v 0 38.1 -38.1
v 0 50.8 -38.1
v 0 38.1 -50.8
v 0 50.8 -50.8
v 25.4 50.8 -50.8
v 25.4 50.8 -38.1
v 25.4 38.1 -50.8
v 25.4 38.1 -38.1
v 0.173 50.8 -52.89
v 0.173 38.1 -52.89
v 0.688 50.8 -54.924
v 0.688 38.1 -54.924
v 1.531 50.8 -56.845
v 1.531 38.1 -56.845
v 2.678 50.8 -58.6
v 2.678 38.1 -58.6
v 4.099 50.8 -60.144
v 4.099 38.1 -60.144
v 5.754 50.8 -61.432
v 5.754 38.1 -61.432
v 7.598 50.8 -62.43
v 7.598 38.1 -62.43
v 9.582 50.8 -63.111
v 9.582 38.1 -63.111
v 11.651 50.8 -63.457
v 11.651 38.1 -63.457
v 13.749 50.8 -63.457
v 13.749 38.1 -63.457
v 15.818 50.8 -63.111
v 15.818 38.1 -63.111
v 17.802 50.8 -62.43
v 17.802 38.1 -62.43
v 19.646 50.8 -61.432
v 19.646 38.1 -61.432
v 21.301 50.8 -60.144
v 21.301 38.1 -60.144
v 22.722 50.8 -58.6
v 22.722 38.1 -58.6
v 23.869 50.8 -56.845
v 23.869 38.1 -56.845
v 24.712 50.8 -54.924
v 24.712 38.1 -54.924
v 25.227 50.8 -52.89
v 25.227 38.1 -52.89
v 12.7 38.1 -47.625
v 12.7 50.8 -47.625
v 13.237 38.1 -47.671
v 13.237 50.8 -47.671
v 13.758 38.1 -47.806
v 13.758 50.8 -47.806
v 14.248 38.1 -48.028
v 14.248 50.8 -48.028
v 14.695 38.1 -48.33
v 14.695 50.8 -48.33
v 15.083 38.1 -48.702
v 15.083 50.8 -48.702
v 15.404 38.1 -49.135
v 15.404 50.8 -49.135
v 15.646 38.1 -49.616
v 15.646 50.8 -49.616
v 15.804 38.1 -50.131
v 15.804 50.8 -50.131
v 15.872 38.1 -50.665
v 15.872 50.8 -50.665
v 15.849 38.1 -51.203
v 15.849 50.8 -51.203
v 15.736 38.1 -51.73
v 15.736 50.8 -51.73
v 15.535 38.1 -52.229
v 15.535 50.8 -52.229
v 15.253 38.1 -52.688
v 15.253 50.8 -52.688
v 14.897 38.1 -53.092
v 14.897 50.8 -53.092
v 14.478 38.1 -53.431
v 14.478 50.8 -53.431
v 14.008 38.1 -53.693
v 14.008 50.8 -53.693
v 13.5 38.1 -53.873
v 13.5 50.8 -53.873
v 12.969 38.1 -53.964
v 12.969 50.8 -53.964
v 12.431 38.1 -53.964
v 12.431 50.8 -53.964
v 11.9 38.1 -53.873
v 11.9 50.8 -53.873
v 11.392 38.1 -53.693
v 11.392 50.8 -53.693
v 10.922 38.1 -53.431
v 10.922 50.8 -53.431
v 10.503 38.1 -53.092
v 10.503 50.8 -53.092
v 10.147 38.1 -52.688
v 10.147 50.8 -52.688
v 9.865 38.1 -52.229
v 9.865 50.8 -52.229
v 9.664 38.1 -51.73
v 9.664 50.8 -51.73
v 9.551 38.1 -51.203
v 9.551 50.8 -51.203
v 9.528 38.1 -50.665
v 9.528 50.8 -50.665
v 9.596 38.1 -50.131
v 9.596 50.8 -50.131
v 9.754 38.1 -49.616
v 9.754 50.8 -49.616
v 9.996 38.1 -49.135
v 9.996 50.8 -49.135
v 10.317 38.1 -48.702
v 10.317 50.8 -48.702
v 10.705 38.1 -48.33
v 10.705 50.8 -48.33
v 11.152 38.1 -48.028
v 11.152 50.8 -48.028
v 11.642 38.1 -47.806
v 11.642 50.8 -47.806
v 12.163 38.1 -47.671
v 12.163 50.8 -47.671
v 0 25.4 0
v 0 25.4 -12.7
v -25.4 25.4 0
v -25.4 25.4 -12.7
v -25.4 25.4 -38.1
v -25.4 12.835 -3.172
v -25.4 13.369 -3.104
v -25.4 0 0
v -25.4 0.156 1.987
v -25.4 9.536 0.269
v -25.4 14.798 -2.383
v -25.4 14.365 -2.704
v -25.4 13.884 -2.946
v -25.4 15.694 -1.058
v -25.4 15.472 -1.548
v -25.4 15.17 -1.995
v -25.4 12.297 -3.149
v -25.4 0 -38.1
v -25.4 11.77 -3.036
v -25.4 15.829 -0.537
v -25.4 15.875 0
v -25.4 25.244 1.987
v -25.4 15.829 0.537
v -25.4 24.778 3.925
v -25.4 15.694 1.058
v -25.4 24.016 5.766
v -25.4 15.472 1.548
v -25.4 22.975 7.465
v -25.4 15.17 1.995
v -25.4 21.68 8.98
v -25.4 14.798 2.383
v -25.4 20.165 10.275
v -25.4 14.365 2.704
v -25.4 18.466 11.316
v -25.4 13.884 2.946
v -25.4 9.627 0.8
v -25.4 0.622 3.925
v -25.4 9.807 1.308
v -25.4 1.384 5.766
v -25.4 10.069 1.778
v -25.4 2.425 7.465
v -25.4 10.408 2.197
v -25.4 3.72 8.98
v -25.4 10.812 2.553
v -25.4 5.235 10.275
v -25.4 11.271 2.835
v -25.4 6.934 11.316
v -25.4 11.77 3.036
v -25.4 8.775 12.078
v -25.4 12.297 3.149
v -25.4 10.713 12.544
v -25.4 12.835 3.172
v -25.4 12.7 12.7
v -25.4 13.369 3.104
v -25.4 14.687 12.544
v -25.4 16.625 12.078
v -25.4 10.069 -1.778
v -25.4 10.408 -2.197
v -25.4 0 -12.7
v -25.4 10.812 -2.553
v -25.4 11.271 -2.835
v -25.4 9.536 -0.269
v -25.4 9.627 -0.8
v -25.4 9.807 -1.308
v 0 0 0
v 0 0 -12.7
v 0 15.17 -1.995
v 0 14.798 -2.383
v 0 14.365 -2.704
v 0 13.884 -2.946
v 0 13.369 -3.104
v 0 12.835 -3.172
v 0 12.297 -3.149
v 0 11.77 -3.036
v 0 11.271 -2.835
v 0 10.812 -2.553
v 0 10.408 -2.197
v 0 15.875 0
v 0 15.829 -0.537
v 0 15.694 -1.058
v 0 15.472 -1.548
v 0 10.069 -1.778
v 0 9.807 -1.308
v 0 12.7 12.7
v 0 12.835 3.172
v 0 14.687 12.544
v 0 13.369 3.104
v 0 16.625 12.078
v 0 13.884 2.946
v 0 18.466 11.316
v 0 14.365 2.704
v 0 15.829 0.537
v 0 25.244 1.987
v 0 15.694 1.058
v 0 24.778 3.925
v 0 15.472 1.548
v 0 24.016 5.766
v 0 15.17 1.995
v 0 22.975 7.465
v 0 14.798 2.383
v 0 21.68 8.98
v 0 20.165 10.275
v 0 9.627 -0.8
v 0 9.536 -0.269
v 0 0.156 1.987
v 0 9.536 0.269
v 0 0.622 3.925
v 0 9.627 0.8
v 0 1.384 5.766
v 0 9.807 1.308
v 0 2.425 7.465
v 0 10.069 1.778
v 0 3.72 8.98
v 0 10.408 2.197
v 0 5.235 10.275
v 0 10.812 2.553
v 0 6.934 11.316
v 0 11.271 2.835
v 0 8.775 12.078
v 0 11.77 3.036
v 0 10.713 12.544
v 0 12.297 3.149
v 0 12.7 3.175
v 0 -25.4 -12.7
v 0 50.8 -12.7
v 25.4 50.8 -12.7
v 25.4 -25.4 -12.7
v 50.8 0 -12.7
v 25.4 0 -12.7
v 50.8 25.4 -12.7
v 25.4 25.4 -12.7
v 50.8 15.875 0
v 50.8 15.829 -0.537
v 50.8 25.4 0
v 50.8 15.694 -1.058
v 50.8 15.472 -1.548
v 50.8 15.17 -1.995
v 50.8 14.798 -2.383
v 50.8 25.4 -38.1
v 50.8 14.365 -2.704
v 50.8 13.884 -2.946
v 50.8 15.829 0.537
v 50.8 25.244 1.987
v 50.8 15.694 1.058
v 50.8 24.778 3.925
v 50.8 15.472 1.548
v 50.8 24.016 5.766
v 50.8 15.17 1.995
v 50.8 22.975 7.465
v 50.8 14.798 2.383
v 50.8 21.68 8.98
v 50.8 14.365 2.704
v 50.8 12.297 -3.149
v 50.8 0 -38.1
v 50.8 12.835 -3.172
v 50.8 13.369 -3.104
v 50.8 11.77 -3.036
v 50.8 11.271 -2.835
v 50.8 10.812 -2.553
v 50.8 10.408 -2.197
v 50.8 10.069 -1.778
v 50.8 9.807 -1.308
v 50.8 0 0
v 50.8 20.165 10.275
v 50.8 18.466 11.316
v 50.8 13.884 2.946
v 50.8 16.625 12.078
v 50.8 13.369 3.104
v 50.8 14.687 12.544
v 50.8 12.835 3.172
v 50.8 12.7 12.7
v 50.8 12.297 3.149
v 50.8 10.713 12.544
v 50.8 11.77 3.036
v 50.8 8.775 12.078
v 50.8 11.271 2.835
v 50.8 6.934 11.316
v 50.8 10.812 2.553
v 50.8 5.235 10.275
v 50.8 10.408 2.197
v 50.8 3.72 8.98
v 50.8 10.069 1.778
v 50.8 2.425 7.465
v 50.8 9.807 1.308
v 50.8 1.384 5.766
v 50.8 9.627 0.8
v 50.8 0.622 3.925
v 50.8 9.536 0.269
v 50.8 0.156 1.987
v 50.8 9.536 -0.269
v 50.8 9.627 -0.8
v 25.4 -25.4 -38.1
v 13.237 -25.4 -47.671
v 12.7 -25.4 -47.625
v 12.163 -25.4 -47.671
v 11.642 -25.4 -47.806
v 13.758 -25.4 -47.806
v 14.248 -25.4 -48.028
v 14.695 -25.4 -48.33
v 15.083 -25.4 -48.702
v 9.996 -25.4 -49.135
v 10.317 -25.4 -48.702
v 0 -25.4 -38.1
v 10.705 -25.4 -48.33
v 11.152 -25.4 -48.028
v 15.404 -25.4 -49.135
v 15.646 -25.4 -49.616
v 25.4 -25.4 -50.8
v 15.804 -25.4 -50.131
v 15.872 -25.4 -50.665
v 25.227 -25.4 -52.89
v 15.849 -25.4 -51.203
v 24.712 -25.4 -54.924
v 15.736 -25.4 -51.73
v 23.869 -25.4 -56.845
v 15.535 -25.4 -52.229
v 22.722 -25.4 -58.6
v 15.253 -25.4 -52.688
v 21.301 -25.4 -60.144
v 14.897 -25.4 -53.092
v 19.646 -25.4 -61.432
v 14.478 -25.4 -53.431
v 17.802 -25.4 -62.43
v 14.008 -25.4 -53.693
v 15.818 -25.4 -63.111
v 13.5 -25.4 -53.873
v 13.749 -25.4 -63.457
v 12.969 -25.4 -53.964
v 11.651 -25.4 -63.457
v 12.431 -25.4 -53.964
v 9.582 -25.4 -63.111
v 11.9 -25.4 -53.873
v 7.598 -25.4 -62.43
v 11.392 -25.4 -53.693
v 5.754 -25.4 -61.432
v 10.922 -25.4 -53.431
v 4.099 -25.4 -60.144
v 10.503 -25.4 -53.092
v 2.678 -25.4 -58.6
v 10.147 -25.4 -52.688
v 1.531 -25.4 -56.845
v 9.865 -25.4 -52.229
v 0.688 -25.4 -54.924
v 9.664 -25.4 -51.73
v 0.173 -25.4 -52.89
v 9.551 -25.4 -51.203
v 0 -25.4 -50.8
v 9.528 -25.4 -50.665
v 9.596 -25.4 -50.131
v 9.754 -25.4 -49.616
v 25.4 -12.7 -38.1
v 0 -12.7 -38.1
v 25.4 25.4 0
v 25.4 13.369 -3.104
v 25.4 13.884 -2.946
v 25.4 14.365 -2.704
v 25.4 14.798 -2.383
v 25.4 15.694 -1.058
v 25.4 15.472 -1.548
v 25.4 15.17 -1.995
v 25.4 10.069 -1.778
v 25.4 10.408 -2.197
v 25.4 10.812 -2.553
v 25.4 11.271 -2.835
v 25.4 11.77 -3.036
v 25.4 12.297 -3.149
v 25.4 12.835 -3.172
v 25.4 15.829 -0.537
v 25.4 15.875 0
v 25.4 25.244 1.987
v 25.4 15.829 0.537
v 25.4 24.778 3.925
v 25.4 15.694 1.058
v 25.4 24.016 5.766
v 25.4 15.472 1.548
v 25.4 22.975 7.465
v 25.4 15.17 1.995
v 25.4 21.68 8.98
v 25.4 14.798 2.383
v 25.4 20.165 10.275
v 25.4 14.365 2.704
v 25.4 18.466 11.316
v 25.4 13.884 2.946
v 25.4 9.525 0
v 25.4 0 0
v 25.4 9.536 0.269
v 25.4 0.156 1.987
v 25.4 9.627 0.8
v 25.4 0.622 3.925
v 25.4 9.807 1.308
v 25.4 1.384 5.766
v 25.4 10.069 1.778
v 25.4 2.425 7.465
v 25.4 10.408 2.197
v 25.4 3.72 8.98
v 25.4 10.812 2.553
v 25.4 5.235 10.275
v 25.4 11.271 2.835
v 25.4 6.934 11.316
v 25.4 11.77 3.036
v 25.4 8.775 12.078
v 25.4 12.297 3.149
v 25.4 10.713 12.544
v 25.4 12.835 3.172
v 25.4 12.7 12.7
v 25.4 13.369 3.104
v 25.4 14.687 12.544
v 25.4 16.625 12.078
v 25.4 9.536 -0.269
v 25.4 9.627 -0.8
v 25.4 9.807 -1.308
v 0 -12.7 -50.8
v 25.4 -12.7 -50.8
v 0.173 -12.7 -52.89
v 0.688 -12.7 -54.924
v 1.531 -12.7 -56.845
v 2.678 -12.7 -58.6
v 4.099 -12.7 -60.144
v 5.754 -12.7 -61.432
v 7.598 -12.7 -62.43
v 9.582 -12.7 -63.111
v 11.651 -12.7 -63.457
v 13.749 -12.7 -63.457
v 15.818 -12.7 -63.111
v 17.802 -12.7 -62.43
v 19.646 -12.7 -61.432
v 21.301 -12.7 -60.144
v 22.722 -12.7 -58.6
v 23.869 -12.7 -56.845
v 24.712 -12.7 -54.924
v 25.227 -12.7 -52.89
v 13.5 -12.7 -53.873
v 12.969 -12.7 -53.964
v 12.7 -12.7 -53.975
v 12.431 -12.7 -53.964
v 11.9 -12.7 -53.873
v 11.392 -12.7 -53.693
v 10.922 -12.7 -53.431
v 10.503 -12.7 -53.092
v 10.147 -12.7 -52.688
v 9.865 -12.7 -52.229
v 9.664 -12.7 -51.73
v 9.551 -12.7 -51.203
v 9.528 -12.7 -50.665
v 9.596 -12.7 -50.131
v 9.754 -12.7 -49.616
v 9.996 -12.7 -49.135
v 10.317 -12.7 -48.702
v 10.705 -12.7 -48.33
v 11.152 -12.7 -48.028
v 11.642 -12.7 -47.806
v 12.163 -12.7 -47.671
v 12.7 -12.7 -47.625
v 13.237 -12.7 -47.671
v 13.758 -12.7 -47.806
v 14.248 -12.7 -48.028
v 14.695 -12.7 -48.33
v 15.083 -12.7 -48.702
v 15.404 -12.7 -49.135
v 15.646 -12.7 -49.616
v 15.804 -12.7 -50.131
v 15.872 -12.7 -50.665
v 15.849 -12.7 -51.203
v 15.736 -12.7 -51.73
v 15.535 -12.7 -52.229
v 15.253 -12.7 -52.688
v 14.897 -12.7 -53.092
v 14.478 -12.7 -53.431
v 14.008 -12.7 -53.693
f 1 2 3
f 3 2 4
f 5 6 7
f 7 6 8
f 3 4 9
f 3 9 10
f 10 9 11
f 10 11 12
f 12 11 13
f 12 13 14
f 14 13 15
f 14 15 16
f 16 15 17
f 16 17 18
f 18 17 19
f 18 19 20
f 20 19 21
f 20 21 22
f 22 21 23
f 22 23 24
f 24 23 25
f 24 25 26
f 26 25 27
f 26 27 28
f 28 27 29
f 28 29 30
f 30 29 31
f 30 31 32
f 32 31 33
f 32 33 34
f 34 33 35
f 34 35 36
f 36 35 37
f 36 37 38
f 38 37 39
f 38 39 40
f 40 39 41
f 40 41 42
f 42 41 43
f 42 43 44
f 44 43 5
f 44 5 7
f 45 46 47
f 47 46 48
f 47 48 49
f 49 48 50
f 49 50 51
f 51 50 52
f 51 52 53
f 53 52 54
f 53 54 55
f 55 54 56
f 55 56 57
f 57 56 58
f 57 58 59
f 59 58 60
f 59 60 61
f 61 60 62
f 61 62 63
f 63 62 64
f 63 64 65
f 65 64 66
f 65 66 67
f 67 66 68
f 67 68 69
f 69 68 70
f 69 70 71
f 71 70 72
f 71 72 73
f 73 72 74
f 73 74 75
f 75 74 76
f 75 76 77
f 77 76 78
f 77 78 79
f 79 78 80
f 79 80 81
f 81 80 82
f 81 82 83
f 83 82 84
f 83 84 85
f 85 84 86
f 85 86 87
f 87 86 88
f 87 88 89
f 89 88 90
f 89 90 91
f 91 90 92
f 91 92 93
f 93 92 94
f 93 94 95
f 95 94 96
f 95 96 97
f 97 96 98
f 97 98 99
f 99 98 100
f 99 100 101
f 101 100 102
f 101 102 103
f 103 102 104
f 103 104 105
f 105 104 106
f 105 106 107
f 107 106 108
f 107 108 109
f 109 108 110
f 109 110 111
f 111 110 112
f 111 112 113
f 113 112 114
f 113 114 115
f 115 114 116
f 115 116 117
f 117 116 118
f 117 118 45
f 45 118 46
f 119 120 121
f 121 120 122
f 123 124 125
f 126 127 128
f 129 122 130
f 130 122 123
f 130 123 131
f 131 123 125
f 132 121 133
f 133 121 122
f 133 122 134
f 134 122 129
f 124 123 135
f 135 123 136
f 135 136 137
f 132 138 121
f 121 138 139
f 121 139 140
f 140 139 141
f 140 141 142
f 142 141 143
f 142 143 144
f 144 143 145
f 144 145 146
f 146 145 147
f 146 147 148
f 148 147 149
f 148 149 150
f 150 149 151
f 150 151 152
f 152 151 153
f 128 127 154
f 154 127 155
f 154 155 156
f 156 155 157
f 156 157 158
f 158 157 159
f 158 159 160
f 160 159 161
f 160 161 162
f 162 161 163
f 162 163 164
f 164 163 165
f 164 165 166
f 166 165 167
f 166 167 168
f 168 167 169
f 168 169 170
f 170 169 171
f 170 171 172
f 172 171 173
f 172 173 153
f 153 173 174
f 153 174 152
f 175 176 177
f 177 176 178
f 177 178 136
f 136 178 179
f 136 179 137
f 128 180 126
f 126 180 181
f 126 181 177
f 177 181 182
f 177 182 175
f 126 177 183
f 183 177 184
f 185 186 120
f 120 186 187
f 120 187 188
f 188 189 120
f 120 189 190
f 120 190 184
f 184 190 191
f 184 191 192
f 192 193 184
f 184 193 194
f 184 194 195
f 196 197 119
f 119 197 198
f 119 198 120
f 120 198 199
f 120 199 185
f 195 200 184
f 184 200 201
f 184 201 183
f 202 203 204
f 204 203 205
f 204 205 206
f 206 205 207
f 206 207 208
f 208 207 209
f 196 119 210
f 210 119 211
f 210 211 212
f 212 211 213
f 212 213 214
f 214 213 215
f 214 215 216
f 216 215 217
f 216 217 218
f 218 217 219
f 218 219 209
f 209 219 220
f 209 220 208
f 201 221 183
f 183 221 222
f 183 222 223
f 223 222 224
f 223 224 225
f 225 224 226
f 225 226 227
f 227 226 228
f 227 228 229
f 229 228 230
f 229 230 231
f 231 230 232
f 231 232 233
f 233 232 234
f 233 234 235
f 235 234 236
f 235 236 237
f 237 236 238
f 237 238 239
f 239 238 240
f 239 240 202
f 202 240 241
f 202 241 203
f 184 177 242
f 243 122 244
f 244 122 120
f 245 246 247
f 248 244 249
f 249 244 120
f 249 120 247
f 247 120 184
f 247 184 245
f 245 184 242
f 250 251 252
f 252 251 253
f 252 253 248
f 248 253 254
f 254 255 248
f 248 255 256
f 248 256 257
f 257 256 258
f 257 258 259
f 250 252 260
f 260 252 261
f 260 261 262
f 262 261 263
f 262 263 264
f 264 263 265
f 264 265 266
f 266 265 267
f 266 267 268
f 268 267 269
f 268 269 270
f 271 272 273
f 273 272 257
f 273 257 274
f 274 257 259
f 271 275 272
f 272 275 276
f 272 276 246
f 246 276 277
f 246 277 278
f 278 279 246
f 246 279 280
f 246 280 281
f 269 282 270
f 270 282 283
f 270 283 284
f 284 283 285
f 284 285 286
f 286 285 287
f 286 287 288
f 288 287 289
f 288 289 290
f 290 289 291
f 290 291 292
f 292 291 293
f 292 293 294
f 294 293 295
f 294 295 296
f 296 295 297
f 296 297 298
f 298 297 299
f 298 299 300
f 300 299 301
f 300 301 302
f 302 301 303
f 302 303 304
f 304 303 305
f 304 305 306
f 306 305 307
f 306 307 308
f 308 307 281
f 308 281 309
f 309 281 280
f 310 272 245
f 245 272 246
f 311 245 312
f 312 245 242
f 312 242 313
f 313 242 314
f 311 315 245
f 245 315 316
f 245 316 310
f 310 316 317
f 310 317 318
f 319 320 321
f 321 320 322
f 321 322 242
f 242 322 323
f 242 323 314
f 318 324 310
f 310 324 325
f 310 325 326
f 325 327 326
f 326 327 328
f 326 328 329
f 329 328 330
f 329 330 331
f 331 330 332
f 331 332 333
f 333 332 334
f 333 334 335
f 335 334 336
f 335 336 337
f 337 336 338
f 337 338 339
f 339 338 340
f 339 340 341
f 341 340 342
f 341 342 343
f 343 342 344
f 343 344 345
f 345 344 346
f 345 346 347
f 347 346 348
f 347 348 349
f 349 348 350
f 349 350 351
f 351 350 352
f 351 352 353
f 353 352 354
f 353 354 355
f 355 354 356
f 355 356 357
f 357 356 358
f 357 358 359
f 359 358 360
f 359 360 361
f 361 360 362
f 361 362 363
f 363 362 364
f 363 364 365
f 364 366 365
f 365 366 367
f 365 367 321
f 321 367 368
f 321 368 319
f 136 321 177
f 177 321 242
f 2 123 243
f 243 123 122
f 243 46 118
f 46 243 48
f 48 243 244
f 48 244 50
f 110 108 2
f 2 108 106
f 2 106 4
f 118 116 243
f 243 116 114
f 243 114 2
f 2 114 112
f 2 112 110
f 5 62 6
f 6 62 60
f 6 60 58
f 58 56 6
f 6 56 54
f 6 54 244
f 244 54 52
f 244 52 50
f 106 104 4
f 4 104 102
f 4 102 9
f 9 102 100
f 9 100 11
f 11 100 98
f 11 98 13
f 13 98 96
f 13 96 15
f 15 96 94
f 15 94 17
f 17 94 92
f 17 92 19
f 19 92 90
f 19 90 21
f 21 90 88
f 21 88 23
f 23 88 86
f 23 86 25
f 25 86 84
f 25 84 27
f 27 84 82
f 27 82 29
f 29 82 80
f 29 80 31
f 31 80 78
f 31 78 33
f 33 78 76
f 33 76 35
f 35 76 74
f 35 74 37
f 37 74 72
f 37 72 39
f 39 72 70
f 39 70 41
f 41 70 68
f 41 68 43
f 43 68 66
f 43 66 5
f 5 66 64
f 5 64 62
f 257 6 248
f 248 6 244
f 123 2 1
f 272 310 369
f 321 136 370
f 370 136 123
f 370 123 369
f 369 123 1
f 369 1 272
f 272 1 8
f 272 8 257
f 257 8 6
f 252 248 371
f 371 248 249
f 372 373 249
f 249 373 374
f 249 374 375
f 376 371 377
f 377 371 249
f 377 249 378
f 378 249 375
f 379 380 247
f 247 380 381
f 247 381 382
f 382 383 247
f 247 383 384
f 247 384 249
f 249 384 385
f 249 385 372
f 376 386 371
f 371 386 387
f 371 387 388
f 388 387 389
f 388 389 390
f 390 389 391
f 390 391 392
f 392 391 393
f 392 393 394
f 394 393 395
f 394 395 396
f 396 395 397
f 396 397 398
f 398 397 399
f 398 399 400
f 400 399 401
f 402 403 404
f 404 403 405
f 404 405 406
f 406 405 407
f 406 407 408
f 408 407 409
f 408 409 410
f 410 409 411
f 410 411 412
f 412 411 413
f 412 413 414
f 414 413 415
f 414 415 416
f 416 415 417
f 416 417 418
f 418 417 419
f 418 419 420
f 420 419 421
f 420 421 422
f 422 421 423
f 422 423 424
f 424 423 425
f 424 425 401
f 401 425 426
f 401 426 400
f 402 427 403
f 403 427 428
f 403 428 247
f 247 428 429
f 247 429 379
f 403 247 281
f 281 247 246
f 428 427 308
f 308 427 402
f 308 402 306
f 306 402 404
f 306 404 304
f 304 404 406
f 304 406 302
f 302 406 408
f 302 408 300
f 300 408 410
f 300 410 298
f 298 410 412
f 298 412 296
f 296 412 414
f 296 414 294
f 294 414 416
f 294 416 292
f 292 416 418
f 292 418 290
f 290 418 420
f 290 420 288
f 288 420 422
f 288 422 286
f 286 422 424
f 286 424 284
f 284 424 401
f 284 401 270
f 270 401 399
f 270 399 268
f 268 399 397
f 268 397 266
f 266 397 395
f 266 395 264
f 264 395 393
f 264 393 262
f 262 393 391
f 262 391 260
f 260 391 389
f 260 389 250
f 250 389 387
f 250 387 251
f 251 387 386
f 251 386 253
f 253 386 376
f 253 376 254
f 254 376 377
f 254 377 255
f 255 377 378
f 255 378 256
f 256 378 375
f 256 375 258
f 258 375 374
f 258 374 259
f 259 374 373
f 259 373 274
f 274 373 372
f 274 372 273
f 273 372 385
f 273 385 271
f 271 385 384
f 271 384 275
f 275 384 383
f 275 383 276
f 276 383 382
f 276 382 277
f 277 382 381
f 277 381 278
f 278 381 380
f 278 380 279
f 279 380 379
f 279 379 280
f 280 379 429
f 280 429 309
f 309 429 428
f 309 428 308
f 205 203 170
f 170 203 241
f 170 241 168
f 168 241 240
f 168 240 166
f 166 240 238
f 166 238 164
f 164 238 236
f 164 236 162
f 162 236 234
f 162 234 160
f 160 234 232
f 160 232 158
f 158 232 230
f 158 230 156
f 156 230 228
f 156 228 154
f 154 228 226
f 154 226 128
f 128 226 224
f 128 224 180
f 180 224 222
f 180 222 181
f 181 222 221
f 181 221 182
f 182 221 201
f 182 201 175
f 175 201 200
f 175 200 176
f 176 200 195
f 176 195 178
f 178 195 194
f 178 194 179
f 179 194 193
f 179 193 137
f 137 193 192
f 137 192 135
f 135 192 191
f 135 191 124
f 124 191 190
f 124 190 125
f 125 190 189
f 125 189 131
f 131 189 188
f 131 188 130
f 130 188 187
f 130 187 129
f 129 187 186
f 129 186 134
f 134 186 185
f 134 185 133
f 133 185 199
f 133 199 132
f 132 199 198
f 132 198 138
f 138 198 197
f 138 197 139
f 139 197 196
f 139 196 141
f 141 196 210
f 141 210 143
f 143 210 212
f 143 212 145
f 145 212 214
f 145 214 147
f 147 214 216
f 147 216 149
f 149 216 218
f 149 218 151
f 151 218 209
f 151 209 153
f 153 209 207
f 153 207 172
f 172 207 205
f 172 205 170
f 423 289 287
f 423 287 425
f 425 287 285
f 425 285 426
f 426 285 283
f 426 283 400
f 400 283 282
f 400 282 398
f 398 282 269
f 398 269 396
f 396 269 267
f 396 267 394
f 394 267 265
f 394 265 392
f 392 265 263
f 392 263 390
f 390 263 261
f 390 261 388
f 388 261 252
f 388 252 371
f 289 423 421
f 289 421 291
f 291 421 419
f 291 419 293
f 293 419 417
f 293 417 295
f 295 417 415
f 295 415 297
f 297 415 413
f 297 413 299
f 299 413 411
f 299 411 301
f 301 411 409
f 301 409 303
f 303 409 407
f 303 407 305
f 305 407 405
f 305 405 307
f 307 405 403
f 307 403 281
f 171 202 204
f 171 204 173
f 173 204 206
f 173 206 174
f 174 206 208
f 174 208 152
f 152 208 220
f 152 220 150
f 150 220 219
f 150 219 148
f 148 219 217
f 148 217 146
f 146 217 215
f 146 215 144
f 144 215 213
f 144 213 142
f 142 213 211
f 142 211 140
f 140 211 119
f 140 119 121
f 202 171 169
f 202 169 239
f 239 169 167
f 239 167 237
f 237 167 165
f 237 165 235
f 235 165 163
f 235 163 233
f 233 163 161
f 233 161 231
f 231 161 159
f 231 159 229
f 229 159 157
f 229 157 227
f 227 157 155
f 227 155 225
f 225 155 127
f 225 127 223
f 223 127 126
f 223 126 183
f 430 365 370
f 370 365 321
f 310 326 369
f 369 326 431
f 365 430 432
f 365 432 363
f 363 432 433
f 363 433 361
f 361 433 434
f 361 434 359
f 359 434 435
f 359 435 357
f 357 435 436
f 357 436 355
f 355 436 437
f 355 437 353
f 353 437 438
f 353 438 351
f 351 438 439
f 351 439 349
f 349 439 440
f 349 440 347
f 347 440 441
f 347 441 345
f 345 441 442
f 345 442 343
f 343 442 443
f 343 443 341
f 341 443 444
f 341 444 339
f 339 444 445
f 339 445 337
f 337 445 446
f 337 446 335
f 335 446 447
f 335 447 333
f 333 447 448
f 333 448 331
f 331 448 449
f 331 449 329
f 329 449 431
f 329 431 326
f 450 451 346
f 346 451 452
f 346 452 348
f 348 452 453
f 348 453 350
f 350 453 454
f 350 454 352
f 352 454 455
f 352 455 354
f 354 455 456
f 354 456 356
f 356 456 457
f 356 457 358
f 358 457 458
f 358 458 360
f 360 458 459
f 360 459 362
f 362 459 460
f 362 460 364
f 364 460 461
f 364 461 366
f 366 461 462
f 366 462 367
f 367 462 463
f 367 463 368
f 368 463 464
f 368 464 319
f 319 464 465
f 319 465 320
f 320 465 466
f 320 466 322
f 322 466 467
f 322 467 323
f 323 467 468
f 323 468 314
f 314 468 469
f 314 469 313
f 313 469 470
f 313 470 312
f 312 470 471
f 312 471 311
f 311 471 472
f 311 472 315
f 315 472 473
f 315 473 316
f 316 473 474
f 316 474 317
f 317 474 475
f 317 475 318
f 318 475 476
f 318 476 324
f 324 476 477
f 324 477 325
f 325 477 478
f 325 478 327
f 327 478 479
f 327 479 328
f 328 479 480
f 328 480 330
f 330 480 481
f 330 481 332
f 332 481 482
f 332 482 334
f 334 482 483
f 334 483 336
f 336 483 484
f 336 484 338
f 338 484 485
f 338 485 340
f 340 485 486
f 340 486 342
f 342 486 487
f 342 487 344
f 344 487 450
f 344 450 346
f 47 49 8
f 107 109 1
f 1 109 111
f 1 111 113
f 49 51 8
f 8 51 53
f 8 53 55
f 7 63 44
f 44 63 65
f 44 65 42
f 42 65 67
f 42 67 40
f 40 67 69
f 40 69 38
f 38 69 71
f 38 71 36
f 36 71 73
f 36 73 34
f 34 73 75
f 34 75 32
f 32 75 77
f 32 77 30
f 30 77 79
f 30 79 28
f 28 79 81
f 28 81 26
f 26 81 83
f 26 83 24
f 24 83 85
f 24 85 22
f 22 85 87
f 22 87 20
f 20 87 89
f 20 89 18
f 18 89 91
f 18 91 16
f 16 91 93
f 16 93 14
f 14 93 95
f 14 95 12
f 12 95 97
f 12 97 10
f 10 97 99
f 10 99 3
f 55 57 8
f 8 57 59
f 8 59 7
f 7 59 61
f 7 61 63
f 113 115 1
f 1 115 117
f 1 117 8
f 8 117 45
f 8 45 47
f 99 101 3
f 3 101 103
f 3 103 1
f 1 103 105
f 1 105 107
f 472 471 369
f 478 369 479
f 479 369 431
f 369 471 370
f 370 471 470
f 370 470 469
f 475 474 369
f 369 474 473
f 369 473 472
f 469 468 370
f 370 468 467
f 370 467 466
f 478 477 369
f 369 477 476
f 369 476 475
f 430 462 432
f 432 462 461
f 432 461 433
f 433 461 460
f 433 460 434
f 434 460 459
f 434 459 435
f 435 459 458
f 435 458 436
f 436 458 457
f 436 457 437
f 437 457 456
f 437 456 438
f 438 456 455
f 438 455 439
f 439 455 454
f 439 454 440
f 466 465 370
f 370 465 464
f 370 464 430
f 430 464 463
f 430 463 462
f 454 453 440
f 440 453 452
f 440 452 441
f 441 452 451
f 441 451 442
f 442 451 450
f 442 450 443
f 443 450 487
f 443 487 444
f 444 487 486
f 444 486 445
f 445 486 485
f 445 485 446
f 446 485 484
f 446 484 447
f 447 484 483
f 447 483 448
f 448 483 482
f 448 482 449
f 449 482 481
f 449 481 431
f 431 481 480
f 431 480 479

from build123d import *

# Parameters (mm, degrees)
SKETCH1_W             = 25.4
SKETCH1_H             = 25.4
BOSS_EXTRUDE1_DEPTH   = 12.7
BOSS_EXTRUDE1_2_DEPTH = 12.7
BOSS_EXTRUDE2_DEPTH   = 25.4
SKETCH3_R             = 3.175
CUT_EXTRUDE1_DEPTH    = 100.190170884
FILLET1_R             = 12.7
BOSS_EXTRUDE3_DEPTH   = 76.2
SKETCH5_W             = 25.4
SKETCH5_H             = 50.8
CUT_EXTRUDE2_DEPTH    = 96.882897328


with BuildPart() as part:
    # Sketch1 → Boss-Extrude1 (new, symmetric)
    with BuildSketch(Plane.XY):
        with Locations((-12.7, 12.7)):
            Rectangle(SKETCH1_W, SKETCH1_H)
    extrude(amount=BOSS_EXTRUDE1_DEPTH, both=True)



with BuildPart() as body_2:
    # Sketch1 → Boss-Extrude1 2 (new, symmetric)
    with BuildSketch(Plane.XY):
        with Locations((38.1, 12.7)):
            Rectangle(SKETCH1_W, SKETCH1_H)
    extrude(amount=BOSS_EXTRUDE1_2_DEPTH, both=True)


with BuildPart() as part_1:
    add(part.part)

    add(body_2.part)  # Boss-Extrude2 merges body 2
    # Sketch2 → Boss-Extrude2 (add)
    with BuildSketch(Plane(origin=(0, 0, -12.7), x_dir=(-1, 0, 0), z_dir=(0, 0, -1))):
        Polygon((-50.8, 25.4), (-25.4, 50.8), (0, 50.8), (25.4, 25.4), (25.4, 0), (0, -25.4), (-25.4, -25.4), (-50.8, 0), align=None)
    extrude(amount=BOSS_EXTRUDE2_DEPTH)

    # Sketch3 → Cut-Extrude1 (cut, through all)
    with BuildSketch(Plane(origin=(50.8, 0, 0), x_dir=(0, 0, -1), z_dir=(1, 0, 0))):
        with Locations(Location((0, 12.7, 0), (0, 0, 90))):
            Circle(SKETCH3_R)
    extrude(amount=-CUT_EXTRUDE1_DEPTH, mode=Mode.SUBTRACT)

    # Fillet1
    fillet1_edges = [part_1.edges().sort_by_distance(p)[0] for p in [
        (38.1, 0, 12.7),
        (-12.7, 0, 12.7),
        (-12.7, 25.4, 12.7),
        (38.1, 25.4, 12.7),
    ]]
    fillet(fillet1_edges, radius=FILLET1_R - 0.0001)  # a hair under: the kernel refuses the full size

    # Sketch4 → Boss-Extrude3 (add)
    with BuildSketch(Plane(origin=(0, 50.8, 0), x_dir=(1, 0, 0), z_dir=(0, 1, 0))):
        with BuildLine():
            ThreePointArc((0, 50.8), (3.719743896, 41.819743862), (12.700000049, 38.1))
            ThreePointArc((12.700000049, 38.1), (21.680256138, 41.819743896), (25.4, 50.8))
            Line((25.4, 50.8), (15.875, 50.8))
            ThreePointArc((15.875, 50.8), (12.7, 47.625), (9.525, 50.8))
            Line((9.525, 50.8), (0, 50.8))
        make_face()
        with BuildLine():
            ThreePointArc((25.4, 50.8), (12.7, 63.5), (0, 50.8))
            Line((0, 50.8), (9.525, 50.8))
            ThreePointArc((9.525, 50.8), (12.7, 53.975), (15.875, 50.8))
            Line((15.875, 50.8), (25.4, 50.8))
        make_face()
        with BuildLine():
            Line((0, 50.8), (0, 38.1))
            Line((0, 38.1), (12.700000049, 38.1))
            ThreePointArc((12.700000049, 38.1), (3.719743896, 41.819743862), (0, 50.8))
        make_face()
        with BuildLine():
            ThreePointArc((25.4, 50.8), (21.680256138, 41.819743896), (12.700000049, 38.1))
            Line((12.700000049, 38.1), (25.4, 38.1))
            Line((25.4, 38.1), (25.4, 50.8))
        make_face()
    extrude(amount=-BOSS_EXTRUDE3_DEPTH)

    # Sketch5 → Cut-Extrude2 (cut, through all)
    with BuildSketch(Plane(origin=(25.4, 0, 0), x_dir=(0, 0, -1), z_dir=(1, 0, 0))):
        with Locations((50.8, 12.7)):
            Rectangle(SKETCH5_W, SKETCH5_H)
    extrude(amount=-CUT_EXTRUDE2_DEPTH, mode=Mode.SUBTRACT)


solid = part_1.part
